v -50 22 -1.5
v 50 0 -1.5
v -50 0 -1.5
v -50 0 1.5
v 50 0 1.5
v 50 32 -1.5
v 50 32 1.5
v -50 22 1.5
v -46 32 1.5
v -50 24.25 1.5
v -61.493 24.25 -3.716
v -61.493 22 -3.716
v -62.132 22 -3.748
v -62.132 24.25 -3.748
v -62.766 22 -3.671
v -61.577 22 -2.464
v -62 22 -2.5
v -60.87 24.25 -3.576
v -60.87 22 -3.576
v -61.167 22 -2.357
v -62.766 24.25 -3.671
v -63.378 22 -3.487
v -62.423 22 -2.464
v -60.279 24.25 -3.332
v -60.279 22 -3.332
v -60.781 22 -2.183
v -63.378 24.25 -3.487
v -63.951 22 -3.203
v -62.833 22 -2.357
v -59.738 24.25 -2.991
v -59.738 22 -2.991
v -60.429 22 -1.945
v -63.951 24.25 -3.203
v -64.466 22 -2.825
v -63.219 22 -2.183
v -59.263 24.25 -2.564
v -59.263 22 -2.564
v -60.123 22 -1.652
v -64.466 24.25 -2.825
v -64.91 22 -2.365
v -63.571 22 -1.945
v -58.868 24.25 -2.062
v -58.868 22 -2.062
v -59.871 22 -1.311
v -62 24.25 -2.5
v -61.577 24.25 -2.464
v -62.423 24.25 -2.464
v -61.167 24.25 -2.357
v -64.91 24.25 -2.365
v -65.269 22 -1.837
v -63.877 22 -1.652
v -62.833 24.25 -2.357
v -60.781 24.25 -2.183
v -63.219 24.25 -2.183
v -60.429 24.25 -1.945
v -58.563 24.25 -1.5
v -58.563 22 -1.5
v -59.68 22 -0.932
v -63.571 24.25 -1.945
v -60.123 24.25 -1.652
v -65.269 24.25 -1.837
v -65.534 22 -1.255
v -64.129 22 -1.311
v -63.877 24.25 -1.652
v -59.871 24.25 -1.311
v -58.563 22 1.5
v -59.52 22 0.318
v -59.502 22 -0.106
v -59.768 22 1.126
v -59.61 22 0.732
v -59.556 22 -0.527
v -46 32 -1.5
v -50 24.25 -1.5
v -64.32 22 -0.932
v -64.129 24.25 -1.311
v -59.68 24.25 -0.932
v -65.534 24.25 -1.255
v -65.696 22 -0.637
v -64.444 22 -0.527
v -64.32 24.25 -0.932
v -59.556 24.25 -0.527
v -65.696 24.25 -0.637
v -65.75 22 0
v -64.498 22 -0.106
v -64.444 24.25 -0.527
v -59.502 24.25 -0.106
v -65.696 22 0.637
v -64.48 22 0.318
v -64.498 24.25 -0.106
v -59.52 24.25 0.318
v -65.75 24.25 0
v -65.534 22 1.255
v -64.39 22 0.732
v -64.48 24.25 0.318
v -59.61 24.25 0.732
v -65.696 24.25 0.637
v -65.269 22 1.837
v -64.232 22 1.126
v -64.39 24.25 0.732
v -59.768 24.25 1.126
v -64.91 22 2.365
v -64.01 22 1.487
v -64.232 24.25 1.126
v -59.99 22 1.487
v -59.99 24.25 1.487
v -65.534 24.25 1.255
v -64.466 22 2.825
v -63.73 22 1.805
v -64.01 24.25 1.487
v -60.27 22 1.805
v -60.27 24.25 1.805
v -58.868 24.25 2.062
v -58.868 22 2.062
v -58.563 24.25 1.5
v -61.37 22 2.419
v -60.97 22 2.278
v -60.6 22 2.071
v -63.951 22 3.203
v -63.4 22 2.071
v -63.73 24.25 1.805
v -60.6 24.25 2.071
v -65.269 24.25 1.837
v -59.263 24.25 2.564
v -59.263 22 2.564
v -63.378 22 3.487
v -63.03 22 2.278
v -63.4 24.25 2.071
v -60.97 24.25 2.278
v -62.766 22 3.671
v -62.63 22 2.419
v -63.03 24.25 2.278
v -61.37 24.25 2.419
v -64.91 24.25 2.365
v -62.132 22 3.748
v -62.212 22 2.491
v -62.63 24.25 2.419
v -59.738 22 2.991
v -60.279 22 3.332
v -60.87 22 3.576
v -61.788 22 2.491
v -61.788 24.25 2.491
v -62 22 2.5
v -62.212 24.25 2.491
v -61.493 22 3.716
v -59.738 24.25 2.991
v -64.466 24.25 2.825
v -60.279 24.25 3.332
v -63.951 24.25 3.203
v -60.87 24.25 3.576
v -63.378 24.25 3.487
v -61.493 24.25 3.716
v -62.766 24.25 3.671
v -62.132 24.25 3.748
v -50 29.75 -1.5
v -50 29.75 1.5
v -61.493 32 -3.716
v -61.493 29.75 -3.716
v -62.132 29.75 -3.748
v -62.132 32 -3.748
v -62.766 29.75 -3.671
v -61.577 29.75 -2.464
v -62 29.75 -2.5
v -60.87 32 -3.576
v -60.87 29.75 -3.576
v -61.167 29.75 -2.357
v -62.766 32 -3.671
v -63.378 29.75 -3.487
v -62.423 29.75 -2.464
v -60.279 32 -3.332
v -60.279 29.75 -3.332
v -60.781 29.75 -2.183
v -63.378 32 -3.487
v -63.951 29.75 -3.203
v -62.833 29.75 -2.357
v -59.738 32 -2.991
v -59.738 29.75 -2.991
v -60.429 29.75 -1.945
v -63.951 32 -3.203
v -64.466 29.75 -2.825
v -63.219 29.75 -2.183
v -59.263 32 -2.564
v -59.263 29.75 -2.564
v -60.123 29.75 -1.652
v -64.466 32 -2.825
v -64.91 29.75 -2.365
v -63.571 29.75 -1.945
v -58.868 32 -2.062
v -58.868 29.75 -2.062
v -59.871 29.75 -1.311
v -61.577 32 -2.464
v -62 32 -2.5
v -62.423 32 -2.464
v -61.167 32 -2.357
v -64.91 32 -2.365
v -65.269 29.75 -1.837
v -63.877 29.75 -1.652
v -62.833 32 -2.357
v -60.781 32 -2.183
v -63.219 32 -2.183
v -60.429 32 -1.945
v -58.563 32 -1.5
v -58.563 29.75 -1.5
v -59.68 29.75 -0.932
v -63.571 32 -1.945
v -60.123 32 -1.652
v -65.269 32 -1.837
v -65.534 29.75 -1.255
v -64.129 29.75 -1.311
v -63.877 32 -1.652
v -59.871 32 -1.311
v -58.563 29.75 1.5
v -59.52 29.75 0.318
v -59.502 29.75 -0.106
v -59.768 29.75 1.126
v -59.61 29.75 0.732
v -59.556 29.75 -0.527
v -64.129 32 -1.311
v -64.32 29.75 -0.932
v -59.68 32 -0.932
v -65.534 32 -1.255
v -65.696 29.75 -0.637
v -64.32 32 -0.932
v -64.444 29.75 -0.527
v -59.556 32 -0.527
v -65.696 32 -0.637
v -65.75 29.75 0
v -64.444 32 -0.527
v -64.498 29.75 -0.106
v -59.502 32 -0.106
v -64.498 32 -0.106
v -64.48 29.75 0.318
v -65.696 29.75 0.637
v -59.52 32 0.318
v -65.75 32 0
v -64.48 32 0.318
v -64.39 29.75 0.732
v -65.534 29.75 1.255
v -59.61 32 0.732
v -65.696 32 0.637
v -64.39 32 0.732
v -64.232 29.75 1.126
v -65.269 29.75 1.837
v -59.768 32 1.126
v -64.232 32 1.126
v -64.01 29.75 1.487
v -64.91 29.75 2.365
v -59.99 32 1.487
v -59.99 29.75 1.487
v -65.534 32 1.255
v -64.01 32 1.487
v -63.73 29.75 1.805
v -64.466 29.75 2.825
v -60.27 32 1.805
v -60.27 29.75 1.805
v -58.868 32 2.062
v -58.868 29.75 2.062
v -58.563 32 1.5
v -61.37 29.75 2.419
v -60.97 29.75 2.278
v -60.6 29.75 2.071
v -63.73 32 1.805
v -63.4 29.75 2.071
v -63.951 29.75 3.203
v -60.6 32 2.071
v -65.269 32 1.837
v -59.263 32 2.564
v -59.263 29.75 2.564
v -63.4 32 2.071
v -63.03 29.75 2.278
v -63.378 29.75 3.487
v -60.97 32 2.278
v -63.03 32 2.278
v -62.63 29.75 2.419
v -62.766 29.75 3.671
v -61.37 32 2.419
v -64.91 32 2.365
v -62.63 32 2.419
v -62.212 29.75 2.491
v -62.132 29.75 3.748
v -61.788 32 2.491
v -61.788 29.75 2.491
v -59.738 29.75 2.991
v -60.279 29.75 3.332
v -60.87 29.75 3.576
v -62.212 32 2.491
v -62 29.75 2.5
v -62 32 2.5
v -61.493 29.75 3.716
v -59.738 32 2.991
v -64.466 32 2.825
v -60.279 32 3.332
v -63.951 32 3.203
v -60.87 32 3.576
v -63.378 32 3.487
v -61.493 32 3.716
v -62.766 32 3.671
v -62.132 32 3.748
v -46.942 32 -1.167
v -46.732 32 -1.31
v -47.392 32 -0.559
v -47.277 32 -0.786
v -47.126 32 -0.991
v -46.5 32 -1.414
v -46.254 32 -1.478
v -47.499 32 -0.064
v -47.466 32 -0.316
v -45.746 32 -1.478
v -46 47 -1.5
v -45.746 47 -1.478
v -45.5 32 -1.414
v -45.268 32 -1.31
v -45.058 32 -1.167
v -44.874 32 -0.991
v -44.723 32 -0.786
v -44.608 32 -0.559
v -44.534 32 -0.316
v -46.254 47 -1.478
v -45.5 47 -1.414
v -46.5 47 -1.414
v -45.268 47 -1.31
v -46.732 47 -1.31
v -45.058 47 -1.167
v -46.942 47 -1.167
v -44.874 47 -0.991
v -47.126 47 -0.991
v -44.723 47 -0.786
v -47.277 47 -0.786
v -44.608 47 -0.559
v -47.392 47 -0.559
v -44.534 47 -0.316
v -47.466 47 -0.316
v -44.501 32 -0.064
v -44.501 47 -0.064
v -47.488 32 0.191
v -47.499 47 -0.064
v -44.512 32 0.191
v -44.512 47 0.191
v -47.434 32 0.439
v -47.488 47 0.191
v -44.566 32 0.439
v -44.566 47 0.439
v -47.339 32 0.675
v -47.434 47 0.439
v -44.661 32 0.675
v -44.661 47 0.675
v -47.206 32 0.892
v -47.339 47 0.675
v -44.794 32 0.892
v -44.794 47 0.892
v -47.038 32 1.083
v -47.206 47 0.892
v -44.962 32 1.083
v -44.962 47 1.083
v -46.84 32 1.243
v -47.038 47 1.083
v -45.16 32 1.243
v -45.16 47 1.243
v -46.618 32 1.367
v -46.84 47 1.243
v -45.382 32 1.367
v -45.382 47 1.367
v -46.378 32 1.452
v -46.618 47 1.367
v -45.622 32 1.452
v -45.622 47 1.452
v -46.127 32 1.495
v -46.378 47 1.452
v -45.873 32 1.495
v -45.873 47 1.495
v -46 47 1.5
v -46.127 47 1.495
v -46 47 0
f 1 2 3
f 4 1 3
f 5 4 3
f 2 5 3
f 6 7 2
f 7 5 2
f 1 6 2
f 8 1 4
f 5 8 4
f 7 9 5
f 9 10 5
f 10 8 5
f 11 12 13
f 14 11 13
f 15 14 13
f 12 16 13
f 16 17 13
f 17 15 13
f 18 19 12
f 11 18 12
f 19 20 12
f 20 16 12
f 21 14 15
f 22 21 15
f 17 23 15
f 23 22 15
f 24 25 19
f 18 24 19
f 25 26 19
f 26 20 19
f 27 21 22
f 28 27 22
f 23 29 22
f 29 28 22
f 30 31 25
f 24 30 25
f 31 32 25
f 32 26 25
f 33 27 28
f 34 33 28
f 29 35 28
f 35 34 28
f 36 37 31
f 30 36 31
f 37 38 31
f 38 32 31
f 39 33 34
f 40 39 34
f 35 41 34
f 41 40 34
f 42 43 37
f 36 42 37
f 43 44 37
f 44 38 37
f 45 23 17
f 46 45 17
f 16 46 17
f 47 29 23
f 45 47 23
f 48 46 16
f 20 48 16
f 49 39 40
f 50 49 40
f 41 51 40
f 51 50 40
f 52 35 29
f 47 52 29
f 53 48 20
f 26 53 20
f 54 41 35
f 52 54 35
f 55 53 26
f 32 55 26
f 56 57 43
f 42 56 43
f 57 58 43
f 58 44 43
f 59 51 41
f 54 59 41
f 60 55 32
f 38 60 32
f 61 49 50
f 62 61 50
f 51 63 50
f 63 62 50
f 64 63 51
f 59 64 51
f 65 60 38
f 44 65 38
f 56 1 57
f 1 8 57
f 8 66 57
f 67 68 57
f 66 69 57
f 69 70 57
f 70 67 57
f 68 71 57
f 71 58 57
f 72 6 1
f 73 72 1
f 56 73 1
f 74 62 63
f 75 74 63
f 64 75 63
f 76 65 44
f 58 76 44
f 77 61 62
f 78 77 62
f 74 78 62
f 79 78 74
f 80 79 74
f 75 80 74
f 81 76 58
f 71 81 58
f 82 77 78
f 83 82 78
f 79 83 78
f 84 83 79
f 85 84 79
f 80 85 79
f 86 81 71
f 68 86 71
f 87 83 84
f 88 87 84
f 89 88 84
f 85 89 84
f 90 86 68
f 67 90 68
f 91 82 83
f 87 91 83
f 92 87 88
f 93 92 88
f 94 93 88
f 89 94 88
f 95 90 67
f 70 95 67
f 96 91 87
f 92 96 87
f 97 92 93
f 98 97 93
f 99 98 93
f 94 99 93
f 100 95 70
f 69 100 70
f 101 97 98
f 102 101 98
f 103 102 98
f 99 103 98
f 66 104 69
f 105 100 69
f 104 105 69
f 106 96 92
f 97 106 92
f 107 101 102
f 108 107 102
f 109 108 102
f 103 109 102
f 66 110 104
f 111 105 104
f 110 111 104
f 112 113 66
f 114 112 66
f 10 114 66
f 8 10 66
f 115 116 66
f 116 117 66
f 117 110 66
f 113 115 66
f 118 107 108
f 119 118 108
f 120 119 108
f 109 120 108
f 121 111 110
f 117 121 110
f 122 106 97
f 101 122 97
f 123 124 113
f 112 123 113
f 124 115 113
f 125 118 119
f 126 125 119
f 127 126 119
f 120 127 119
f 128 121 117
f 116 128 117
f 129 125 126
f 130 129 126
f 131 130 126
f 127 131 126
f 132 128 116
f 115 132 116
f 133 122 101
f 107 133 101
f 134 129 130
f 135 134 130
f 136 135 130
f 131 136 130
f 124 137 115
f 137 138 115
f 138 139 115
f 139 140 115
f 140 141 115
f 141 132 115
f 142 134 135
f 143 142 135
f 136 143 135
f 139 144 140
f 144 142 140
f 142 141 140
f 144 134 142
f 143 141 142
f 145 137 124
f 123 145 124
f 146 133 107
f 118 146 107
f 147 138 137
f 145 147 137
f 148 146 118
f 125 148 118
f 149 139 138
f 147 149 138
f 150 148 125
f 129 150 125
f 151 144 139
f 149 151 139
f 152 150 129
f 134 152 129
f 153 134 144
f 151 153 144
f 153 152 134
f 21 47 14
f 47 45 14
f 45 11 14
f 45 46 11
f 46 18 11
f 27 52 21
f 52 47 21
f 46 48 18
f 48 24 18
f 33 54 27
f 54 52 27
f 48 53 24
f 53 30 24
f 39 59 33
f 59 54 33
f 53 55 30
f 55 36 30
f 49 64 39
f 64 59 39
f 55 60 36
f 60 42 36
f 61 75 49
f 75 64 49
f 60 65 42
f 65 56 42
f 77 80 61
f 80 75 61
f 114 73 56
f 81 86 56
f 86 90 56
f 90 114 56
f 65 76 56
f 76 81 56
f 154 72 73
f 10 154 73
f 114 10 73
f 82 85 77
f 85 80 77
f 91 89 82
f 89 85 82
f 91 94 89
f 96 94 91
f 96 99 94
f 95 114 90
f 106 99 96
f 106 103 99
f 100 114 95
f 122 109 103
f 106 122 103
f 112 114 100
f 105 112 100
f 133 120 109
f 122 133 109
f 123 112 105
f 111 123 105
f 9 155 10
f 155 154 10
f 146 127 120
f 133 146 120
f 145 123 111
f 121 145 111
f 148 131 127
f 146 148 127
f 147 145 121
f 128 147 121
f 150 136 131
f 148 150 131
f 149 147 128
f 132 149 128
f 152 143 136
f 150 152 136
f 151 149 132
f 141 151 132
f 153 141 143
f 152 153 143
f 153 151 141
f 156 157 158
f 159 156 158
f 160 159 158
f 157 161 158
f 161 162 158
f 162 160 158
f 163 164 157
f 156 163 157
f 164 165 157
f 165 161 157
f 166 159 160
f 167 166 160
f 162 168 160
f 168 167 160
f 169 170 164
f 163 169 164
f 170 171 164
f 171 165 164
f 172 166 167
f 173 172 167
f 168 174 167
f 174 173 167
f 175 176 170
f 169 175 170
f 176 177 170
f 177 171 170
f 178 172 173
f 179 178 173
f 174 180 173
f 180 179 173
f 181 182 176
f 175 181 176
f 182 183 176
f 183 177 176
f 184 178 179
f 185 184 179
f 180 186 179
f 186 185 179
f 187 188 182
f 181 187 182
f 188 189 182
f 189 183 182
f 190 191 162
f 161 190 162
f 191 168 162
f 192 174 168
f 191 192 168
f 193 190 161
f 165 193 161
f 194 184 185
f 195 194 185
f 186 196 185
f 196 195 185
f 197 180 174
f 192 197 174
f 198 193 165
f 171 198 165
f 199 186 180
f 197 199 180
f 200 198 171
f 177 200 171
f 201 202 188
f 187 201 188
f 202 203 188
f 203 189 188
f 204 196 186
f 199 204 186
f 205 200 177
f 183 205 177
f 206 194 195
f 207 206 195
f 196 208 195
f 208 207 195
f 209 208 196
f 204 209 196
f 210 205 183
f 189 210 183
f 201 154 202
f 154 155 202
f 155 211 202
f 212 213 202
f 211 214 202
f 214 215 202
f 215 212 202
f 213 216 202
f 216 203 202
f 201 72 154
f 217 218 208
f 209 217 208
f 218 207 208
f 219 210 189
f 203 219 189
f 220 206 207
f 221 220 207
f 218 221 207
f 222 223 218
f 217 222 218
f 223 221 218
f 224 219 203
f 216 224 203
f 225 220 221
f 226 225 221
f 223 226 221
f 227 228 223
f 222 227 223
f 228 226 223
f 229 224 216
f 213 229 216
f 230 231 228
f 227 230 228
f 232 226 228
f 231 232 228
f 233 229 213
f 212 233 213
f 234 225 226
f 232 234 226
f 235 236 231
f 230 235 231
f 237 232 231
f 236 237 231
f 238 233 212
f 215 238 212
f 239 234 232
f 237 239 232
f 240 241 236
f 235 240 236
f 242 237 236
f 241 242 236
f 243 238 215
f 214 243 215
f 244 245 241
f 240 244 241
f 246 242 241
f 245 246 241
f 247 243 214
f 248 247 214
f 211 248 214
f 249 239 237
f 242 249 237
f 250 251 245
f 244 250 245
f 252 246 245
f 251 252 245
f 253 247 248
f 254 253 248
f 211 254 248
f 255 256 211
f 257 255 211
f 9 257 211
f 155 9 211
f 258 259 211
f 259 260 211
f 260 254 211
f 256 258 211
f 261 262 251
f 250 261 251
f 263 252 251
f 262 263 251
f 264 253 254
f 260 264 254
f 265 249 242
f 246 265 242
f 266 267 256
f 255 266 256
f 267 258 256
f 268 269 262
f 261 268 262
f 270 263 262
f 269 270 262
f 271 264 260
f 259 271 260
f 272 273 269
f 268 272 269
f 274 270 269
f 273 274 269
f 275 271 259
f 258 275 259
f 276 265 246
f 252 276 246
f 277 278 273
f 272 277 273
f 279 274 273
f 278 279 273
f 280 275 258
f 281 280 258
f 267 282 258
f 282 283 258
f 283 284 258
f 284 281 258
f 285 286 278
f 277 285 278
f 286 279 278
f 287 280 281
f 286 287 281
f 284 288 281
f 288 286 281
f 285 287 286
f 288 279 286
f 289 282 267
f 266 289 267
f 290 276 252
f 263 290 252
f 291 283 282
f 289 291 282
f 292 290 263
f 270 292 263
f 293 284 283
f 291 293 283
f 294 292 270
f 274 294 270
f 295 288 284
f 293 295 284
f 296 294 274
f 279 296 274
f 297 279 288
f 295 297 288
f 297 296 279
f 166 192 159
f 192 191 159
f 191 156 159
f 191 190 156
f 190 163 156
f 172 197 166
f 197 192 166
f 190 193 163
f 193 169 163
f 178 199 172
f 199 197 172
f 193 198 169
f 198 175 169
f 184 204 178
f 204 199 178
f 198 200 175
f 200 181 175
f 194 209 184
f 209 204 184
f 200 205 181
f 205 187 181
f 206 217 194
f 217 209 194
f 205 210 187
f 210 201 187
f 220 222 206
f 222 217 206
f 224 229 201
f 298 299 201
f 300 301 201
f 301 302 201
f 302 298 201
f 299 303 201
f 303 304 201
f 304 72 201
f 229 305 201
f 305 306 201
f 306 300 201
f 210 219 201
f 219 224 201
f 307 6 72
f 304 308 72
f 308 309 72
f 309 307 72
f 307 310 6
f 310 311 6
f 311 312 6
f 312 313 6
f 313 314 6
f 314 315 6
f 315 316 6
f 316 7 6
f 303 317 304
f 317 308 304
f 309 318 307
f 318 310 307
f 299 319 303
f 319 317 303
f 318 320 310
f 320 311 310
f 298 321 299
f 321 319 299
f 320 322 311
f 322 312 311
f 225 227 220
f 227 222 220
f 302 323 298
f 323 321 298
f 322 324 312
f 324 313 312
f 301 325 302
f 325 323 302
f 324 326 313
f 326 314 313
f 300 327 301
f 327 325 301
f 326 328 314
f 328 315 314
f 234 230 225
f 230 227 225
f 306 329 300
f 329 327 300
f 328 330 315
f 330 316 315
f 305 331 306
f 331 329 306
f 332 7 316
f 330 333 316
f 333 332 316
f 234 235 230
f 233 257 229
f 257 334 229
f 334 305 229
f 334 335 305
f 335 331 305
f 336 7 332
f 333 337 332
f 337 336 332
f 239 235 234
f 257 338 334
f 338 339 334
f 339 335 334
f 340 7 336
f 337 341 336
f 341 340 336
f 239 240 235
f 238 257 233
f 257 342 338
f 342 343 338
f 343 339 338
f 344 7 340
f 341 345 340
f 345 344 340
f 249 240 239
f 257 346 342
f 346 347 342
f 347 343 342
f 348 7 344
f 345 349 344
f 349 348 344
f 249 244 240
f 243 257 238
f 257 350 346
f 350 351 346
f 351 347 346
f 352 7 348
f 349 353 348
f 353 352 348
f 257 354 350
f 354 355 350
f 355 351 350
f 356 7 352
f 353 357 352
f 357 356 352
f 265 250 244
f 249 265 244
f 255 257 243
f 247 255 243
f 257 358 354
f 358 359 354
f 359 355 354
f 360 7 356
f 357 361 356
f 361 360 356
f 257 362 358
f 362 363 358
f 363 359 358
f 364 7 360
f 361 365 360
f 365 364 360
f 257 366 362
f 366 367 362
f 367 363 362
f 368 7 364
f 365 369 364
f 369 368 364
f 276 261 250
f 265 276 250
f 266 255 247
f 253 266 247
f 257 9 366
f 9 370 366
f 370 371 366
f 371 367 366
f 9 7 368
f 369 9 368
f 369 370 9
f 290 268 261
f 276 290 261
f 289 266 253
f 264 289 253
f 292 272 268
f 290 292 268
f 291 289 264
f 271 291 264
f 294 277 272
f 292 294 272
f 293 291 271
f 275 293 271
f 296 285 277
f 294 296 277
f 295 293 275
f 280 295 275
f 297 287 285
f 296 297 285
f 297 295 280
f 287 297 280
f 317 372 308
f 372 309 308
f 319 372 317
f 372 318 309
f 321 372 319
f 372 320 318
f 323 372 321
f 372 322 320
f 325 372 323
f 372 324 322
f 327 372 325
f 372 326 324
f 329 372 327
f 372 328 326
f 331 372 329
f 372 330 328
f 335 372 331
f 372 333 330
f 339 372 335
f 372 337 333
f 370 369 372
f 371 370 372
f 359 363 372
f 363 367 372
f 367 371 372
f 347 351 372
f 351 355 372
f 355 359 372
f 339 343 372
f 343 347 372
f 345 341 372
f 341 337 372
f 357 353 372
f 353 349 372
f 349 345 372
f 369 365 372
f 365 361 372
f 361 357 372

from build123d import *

# Parameters (mm, degrees)
SKETCH2_W               = 100
SKETCH2_H               = 3
BOSS_EXTRUDE1_DEPTH     = 22
SKETCH3_R               = 2.5
BOSS_EXTRUDE2_DEPTH     = 10
SKETCH4_R               = 1.5
BOSS_EXTRUDE3_DEPTH     = 15
CUT_EXTRUDE1_DEPTH      = 81.991511901
CUT_EXTRUDE1_DEPTH_BACK = 81.991511901


with BuildPart() as part:
    # Sketch2 → Boss-Extrude1 (new body)
    with BuildSketch(Plane(origin=(0, 0, 0), x_dir=(1, 0, 0), z_dir=(0, 1, 0))):
        Rectangle(SKETCH2_W, SKETCH2_H)
    extrude(amount=BOSS_EXTRUDE1_DEPTH)

    # Sketch3 → Boss-Extrude2 (add)
    with BuildSketch(Plane(origin=(0, 22, 0), x_dir=(1, 0, 0), z_dir=(0, 1, 0))):
        with BuildLine():
            Line((50, 1.5), (-58.563068229, 1.5))
            ThreePointArc((-58.563068229, 1.5), (-65.75, 0), (-58.563068229, -1.5))
            Line((-58.563068229, -1.5), (50, -1.5))
            Line((50, -1.5), (50, 1.5))
        make_face()
        with Locations(Location((-62, 0, 0), (0, 0, 270))):
            Circle(SKETCH3_R, mode=Mode.SUBTRACT)
    extrude(amount=BOSS_EXTRUDE2_DEPTH)

    # Sketch4 → Boss-Extrude3 (add)
    with BuildSketch(Plane(origin=(0, 32, 0), x_dir=(1, 0, 0), z_dir=(0, 1, 0))):
        with Locations(Location((-46, 0, 0), (0, 0, 270))):
            Circle(SKETCH4_R)
    extrude(amount=BOSS_EXTRUDE3_DEPTH)

    # Sketch5 → Cut-Extrude1 (cut, two sides: drawn at the far end of the back side and taken through both)
    with BuildSketch(Plane.XY.offset(1.5).offset(-CUT_EXTRUDE1_DEPTH_BACK)):
        Polygon((-65.75, 27), (-65.75, 24.25), (-50, 24.25), (-50, 29.75), (-65.75, 29.75), align=None)
    extrude(amount=CUT_EXTRUDE1_DEPTH + CUT_EXTRUDE1_DEPTH_BACK, mode=Mode.SUBTRACT)


solid = part.part
